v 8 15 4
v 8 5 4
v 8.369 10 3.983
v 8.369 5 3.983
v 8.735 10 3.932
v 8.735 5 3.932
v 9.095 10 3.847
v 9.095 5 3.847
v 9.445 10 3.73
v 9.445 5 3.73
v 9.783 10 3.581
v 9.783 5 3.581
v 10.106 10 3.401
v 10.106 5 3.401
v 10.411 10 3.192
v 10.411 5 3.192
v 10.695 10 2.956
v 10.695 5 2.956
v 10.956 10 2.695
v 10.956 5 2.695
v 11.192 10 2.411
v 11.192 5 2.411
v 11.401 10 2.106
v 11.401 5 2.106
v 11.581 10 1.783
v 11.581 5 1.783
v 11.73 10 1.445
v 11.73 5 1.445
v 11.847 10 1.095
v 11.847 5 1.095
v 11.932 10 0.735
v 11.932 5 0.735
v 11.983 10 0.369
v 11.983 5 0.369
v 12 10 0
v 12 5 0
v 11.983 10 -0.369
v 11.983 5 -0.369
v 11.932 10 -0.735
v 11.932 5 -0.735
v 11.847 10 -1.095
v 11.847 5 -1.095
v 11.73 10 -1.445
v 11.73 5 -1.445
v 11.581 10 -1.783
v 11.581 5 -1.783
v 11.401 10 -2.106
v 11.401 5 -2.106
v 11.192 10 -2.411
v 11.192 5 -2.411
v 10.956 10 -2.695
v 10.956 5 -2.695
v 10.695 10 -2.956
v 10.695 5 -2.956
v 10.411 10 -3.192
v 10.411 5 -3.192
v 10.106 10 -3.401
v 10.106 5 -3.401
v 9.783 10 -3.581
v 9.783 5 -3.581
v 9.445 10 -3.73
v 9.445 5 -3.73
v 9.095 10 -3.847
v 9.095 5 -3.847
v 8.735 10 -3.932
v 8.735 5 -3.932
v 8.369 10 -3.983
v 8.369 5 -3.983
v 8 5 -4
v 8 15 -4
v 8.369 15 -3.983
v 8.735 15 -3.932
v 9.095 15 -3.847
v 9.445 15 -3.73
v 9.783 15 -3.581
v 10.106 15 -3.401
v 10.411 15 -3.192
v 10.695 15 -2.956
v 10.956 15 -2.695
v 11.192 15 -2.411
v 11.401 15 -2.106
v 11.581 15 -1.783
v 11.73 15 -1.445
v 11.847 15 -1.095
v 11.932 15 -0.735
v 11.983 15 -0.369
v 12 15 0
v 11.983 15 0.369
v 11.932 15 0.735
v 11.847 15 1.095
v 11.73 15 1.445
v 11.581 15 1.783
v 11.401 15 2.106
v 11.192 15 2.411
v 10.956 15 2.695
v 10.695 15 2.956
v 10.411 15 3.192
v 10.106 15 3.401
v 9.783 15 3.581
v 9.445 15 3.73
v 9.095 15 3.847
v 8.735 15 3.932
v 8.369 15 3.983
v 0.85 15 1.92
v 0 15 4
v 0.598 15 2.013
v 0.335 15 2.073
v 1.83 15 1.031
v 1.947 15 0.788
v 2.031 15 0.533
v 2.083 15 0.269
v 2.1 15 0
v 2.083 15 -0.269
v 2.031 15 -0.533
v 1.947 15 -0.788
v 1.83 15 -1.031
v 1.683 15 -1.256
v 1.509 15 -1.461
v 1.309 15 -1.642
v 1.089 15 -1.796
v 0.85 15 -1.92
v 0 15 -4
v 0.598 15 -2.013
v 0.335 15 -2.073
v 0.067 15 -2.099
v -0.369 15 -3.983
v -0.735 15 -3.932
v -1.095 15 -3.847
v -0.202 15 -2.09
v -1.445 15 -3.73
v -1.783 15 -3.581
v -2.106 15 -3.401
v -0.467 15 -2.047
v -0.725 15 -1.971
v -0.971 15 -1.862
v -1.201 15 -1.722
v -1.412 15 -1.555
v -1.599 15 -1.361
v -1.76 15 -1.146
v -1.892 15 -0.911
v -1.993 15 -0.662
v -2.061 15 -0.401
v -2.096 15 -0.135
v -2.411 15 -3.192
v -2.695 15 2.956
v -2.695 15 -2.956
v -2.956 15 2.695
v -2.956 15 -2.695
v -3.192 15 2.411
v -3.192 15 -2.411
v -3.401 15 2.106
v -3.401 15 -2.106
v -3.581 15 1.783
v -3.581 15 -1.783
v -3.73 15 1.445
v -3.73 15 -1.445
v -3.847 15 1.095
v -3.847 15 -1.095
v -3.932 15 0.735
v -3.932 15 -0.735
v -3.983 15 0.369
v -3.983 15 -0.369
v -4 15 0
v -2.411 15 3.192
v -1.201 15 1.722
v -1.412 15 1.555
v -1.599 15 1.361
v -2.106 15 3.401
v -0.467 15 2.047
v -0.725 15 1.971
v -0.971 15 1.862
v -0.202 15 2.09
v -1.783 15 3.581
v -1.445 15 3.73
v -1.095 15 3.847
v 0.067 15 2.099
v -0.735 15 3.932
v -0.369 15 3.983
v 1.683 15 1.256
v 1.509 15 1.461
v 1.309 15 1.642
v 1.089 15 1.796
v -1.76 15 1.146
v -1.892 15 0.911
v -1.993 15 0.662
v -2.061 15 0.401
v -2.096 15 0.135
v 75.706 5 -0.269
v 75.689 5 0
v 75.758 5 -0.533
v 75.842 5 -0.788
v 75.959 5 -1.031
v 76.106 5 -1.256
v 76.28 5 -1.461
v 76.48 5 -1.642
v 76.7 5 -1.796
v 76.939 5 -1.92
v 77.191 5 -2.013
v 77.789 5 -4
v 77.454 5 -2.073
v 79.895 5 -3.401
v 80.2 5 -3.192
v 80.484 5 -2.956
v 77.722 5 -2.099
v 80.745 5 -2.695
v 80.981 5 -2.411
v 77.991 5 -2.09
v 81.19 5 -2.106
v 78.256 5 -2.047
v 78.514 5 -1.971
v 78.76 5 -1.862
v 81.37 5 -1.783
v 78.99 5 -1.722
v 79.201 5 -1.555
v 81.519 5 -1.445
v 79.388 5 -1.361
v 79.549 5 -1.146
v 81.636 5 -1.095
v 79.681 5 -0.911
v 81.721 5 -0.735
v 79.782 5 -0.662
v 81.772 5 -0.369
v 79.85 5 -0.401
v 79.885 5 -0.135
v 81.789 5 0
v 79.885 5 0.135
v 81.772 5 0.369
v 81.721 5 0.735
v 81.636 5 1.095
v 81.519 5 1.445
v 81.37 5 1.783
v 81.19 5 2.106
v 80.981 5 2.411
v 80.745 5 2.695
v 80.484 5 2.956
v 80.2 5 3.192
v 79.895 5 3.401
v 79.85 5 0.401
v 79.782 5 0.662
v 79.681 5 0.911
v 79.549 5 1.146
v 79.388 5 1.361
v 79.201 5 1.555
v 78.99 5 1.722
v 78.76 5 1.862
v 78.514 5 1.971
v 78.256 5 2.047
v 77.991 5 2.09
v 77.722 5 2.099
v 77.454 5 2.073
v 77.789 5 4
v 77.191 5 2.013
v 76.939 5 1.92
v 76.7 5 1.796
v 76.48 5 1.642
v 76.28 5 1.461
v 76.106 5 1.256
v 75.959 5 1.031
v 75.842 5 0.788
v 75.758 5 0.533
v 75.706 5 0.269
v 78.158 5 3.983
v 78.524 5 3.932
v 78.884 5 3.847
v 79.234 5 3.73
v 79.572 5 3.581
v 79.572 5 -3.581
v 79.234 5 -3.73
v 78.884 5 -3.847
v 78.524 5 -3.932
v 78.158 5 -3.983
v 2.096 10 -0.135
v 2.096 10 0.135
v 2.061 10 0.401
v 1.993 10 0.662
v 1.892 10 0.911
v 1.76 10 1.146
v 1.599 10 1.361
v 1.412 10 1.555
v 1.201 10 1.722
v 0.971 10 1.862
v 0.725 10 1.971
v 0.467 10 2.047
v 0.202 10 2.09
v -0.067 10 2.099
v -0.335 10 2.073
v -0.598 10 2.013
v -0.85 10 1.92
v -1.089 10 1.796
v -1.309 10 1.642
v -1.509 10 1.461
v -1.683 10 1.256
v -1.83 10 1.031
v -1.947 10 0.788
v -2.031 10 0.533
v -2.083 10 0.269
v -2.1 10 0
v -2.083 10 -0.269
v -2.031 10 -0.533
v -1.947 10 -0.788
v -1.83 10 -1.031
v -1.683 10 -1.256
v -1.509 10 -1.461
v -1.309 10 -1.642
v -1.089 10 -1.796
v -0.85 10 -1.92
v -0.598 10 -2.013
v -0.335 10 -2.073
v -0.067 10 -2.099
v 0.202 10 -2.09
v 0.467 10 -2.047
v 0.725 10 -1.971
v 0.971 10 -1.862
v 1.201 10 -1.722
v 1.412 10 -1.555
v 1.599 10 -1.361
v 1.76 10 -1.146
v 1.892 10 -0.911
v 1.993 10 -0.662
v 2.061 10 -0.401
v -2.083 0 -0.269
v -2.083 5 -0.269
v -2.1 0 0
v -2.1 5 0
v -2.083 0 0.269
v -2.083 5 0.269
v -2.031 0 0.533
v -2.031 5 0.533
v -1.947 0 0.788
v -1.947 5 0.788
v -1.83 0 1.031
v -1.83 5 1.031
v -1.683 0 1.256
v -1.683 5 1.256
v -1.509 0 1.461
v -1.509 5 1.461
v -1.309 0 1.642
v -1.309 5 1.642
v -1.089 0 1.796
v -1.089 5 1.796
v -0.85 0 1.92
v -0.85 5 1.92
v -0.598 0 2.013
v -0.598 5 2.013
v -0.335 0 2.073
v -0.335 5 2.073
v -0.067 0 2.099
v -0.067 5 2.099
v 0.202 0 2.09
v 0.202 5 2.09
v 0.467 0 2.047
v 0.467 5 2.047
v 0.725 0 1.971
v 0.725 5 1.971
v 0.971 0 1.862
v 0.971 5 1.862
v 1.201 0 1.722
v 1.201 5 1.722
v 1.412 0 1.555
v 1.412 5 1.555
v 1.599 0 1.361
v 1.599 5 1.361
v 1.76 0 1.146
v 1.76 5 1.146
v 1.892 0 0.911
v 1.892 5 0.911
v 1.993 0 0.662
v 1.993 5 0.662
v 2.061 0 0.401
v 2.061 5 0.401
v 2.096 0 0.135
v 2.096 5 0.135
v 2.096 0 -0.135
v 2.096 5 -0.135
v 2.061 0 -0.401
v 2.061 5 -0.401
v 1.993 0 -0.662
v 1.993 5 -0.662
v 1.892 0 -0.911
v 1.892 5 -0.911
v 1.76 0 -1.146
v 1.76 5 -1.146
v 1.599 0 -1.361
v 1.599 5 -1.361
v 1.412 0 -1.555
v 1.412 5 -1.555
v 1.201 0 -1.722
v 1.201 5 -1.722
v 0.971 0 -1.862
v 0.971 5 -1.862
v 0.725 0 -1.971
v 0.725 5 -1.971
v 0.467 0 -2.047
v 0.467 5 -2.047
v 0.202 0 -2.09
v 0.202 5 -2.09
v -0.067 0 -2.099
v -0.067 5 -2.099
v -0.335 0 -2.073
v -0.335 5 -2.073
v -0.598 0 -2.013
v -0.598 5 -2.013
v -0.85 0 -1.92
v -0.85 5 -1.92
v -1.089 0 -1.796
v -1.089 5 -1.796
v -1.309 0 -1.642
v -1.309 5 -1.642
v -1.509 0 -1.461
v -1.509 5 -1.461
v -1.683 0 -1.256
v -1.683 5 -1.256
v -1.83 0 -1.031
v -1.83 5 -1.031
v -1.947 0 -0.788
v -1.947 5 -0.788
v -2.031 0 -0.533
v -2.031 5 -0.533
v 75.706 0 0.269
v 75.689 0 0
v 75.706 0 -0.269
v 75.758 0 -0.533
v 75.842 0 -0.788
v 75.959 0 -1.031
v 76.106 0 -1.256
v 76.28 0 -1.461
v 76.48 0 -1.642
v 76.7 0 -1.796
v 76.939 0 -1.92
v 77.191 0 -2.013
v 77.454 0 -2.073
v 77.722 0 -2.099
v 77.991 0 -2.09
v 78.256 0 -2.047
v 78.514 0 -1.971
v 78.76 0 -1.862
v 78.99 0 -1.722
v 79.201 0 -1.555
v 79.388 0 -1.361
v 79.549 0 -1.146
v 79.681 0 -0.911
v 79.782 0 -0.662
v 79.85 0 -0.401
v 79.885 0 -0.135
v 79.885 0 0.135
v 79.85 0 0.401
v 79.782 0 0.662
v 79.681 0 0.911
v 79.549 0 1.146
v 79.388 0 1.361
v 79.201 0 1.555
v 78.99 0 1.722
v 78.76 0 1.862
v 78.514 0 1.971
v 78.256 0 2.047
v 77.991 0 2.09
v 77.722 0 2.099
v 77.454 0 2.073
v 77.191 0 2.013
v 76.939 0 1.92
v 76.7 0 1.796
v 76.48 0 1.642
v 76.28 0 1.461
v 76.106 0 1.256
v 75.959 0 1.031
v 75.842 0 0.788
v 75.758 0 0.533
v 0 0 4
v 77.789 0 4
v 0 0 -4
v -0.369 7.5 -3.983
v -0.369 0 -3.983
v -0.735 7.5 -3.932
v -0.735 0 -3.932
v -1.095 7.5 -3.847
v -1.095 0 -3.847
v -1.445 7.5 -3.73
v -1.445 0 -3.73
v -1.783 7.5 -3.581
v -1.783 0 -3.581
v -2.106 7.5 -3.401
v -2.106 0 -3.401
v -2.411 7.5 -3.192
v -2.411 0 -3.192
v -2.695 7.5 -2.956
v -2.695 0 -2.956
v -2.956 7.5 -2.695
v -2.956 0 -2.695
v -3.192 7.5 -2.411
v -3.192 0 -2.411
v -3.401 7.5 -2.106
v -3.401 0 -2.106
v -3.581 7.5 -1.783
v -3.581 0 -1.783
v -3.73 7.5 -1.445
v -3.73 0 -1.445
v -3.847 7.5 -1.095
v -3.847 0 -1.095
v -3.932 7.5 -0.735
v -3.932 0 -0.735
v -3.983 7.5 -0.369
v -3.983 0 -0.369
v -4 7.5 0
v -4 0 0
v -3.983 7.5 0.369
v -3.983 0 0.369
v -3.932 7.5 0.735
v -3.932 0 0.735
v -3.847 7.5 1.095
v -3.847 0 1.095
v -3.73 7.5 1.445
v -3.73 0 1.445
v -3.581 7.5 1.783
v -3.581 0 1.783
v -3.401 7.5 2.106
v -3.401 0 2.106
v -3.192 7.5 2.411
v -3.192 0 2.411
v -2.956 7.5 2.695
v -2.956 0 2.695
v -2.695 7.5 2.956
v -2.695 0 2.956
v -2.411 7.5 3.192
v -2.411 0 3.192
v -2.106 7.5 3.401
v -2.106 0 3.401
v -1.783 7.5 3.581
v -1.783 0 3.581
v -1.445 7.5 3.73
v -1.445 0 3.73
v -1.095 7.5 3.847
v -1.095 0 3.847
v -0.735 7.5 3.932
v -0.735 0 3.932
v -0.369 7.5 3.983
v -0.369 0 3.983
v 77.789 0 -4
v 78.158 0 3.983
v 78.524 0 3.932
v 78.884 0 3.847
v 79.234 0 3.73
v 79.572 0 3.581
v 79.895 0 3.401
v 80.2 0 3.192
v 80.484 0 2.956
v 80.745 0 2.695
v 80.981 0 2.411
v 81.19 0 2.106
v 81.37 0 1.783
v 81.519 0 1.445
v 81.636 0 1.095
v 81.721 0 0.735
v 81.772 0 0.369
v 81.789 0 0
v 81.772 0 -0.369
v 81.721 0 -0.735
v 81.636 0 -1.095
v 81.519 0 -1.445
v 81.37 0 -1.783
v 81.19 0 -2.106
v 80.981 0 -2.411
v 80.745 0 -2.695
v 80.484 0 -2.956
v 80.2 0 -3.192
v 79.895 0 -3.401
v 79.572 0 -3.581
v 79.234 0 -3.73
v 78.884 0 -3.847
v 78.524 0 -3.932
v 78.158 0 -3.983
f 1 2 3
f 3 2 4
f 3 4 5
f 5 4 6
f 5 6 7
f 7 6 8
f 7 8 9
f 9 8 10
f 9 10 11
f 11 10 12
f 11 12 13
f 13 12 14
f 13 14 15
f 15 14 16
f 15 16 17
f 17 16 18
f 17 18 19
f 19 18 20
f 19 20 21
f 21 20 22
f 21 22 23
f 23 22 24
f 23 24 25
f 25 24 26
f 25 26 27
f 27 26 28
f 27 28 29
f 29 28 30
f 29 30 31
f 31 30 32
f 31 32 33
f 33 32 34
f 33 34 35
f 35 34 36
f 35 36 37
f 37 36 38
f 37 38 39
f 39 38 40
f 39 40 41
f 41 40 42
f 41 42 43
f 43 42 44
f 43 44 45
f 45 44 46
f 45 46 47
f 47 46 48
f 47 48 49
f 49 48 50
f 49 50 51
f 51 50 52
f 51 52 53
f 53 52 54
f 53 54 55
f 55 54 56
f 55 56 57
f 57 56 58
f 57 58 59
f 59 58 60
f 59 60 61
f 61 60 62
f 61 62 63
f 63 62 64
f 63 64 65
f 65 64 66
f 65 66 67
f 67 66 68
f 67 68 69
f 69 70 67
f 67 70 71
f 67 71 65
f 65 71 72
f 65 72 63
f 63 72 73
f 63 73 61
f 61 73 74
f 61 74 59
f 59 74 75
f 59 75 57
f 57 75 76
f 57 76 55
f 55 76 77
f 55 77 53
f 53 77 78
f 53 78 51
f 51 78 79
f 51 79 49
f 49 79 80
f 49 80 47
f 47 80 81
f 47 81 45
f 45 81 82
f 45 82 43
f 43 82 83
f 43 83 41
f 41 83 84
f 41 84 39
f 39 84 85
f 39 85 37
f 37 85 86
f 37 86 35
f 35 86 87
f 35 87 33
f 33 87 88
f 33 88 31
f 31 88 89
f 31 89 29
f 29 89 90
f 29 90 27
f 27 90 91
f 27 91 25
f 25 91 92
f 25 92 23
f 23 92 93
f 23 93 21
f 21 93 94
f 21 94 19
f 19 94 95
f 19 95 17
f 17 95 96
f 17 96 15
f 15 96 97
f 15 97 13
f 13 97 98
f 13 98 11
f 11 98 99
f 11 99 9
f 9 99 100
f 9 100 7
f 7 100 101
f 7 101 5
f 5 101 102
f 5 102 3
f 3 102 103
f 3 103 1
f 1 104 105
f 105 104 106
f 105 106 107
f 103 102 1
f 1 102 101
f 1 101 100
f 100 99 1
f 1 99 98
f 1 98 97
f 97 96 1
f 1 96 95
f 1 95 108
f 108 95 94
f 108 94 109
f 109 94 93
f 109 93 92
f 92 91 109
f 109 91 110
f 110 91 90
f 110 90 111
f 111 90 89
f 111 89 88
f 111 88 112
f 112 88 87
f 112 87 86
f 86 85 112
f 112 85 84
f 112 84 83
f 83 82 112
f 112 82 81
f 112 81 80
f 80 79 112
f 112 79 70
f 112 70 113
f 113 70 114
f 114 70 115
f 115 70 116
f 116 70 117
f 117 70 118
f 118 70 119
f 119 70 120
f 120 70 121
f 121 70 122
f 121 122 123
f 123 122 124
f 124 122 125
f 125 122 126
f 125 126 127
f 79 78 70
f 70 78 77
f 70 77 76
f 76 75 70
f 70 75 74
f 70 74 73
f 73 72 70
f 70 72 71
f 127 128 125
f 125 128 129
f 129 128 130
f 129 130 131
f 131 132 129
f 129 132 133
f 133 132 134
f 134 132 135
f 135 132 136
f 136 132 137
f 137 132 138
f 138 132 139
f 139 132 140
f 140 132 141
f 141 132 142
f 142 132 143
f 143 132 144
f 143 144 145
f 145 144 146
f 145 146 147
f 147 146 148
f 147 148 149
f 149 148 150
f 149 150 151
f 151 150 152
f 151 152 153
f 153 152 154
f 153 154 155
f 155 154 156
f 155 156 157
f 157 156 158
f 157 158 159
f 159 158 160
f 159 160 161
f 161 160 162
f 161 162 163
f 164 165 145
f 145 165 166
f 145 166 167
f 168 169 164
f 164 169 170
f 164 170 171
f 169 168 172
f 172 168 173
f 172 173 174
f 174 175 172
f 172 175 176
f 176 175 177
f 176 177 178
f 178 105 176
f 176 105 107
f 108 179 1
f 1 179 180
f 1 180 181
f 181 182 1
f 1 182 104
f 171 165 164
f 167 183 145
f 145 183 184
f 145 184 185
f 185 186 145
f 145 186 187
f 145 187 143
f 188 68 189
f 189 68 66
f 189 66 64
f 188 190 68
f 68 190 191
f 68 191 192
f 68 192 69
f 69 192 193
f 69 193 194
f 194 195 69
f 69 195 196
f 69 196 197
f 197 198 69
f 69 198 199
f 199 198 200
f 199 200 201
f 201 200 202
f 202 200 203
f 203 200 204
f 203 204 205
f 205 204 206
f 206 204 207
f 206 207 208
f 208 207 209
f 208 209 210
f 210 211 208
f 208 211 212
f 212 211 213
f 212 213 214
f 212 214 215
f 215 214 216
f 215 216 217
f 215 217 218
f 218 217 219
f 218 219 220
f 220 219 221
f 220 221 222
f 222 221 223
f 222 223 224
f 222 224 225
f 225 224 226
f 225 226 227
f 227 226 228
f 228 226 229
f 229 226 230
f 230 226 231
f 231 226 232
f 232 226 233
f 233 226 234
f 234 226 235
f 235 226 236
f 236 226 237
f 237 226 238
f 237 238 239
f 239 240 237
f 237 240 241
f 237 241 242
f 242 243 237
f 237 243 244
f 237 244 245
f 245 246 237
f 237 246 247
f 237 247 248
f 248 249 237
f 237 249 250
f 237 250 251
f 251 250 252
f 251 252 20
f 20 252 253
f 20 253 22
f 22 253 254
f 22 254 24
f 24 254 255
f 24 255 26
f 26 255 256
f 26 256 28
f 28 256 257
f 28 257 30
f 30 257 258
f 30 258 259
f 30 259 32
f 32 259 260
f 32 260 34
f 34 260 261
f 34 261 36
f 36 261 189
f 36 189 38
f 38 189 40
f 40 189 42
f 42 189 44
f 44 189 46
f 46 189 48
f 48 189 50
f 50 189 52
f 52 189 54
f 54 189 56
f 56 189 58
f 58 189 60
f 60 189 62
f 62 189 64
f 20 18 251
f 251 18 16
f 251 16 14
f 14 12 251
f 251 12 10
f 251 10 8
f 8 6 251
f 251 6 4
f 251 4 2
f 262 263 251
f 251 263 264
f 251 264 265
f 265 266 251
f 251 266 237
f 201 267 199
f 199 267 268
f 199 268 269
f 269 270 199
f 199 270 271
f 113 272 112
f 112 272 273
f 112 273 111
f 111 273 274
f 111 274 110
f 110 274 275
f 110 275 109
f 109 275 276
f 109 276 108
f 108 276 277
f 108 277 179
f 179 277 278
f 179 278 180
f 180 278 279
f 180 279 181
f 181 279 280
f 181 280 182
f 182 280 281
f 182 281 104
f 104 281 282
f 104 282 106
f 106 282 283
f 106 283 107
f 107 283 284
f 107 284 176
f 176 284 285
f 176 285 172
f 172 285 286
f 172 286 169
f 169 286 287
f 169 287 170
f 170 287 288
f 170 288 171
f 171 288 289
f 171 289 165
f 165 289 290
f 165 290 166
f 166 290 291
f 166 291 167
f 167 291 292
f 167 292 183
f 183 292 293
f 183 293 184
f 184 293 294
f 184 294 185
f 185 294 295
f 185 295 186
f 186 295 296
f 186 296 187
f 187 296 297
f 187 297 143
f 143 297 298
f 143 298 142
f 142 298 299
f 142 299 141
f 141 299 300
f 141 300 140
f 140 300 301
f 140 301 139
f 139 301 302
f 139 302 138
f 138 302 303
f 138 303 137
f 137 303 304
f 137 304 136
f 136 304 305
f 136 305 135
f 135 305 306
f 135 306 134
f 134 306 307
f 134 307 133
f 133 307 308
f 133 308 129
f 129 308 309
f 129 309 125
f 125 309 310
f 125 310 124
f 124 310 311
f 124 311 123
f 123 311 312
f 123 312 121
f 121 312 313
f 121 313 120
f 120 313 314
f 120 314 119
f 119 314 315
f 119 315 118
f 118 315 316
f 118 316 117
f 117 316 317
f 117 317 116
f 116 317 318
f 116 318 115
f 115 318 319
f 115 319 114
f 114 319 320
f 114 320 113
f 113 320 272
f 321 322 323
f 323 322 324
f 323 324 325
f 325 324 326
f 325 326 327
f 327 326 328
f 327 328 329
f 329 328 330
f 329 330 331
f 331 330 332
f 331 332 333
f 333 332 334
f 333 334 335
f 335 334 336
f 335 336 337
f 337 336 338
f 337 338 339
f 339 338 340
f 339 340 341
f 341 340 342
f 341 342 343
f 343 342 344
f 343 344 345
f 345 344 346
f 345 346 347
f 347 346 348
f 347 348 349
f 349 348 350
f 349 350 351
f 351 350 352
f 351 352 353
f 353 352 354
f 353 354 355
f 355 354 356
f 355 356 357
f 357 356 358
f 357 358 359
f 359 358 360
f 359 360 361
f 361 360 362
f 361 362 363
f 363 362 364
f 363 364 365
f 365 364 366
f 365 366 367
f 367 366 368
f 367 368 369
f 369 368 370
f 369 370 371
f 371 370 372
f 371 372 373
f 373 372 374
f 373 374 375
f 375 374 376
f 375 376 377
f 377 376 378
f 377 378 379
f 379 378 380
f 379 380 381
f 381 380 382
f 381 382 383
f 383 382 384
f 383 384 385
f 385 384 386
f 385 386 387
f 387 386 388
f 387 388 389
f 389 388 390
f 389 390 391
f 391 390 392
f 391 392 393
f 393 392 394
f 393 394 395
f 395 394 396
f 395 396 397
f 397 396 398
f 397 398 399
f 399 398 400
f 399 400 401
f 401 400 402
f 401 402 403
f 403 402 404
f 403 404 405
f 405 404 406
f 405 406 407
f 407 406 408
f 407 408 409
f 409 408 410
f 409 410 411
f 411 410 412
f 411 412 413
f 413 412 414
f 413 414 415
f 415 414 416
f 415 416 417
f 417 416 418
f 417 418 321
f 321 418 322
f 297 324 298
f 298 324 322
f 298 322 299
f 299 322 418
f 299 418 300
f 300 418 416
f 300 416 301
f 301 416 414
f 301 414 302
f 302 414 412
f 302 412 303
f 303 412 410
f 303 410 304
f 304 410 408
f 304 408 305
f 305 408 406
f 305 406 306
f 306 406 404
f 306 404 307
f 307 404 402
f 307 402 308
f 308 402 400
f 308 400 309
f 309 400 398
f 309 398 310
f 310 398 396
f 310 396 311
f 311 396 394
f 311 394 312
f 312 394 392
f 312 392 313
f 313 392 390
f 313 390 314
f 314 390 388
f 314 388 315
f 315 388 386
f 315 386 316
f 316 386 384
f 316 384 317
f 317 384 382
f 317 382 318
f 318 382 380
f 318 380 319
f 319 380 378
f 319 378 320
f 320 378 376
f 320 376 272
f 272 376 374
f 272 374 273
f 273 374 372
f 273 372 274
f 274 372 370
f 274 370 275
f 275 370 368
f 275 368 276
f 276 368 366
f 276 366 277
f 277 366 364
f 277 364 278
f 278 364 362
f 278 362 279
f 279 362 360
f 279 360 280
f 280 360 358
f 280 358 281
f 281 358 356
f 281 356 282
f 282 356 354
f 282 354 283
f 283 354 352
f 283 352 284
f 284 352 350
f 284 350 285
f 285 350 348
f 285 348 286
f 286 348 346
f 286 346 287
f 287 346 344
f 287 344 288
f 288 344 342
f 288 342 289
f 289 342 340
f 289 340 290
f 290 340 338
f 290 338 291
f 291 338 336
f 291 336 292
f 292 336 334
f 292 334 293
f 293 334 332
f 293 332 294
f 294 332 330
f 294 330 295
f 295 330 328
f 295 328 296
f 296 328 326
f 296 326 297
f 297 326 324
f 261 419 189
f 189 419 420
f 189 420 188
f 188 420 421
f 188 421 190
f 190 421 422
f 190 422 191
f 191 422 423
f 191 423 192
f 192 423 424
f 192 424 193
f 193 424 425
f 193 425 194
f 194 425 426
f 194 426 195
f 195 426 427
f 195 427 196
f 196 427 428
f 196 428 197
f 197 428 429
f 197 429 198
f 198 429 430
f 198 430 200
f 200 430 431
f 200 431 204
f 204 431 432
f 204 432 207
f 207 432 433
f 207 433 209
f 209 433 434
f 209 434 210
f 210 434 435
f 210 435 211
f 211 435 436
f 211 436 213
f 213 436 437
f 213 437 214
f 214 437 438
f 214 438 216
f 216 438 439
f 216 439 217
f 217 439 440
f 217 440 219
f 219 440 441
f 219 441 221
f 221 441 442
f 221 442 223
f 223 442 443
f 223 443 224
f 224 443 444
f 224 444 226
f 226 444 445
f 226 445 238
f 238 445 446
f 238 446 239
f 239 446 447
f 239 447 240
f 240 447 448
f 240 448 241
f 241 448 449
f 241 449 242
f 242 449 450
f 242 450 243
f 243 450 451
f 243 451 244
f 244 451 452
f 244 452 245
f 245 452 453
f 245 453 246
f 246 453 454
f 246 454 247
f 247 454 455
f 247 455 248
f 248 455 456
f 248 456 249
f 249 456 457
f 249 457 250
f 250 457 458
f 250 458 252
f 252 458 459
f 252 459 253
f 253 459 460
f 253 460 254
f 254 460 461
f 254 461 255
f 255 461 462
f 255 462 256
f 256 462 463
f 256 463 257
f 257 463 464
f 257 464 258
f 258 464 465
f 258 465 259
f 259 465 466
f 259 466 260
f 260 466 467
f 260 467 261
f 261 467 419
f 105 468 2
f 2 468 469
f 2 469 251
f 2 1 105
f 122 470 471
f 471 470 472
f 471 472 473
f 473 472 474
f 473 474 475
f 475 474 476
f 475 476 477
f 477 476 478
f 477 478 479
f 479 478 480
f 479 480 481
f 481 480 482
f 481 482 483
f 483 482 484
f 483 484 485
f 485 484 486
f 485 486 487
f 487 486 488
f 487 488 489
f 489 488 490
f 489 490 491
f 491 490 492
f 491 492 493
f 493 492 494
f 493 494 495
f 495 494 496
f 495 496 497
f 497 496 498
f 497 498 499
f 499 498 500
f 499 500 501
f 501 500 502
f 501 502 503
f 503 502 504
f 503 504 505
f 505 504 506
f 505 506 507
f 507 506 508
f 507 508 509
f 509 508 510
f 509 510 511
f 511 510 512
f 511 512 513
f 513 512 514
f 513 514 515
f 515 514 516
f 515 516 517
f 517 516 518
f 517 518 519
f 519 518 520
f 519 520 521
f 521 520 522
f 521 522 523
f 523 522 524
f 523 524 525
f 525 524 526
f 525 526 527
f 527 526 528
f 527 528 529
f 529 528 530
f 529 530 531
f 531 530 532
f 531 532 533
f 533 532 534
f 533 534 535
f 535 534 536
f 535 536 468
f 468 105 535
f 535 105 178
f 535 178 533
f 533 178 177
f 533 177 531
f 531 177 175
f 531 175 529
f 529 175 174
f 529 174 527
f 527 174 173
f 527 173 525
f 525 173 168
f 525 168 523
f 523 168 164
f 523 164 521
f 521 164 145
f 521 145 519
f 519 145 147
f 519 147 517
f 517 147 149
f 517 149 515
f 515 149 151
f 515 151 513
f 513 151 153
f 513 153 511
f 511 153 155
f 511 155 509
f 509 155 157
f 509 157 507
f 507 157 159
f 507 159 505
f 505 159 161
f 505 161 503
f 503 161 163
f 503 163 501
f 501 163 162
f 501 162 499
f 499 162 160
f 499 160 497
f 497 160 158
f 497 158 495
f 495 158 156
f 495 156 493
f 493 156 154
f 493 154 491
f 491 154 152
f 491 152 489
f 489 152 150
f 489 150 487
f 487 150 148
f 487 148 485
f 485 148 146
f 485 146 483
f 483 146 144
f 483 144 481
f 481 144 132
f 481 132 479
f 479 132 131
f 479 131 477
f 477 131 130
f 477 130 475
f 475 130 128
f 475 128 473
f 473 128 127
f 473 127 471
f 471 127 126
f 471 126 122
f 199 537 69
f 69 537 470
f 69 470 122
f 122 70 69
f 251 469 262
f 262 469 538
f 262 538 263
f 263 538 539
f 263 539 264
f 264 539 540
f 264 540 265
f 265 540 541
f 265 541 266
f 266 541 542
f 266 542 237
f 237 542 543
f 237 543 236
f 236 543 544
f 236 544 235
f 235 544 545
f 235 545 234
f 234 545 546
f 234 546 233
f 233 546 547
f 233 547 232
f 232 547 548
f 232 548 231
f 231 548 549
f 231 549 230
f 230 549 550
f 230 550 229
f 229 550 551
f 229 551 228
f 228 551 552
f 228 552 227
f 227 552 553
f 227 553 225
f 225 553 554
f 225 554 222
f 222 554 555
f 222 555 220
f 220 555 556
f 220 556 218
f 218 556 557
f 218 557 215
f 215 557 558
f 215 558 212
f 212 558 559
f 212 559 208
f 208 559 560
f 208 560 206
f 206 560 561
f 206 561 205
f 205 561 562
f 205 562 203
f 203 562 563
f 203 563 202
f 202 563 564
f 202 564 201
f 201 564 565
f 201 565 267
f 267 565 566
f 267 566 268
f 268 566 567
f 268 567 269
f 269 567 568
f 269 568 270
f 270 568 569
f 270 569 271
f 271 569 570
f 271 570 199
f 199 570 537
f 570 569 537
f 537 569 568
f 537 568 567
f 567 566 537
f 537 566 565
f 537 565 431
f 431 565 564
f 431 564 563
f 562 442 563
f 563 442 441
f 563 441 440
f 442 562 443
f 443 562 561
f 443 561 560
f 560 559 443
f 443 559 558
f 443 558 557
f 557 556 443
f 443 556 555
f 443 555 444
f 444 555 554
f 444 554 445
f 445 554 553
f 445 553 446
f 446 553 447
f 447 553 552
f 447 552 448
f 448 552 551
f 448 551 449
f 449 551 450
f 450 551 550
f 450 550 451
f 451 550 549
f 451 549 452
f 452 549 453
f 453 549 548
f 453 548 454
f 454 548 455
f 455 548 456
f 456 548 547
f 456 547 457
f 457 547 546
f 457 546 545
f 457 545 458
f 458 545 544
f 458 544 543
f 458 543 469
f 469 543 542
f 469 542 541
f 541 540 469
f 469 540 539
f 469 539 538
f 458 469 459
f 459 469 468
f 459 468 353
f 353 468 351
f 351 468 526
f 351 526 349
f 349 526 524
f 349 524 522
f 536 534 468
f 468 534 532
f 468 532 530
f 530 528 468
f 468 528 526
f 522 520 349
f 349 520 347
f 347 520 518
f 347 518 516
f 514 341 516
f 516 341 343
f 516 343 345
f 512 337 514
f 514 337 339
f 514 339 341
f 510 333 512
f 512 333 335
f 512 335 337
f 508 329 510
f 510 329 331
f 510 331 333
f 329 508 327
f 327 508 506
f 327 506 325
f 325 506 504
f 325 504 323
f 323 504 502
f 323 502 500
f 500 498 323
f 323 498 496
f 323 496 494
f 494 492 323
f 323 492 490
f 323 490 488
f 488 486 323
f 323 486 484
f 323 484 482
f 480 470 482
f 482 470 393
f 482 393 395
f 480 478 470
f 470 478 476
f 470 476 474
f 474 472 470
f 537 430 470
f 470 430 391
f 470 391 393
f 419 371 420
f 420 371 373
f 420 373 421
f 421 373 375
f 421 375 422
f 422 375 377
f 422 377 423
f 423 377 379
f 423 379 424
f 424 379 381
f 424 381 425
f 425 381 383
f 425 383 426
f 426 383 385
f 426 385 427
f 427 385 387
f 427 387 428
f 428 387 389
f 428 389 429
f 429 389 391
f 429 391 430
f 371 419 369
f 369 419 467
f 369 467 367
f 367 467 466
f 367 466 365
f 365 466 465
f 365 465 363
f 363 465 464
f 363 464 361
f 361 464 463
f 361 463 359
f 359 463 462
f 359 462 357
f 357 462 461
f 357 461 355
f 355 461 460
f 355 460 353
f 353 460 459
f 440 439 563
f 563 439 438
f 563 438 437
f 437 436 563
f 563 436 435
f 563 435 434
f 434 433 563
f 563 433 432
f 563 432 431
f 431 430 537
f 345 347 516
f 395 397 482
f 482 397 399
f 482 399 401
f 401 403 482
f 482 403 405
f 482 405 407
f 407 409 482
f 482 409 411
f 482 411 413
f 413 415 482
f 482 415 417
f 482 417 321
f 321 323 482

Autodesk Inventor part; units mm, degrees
ref_plane "YZ Plane" through (0, 0, 0) normal (1, 0, 0) x (0, 1, 0)
ref_plane "XZ Plane" through (0, 0, 0) normal (0, 1, 0) x (-1, 0, 0)
ref_plane "XY Plane" through (0, 0, 0) normal (0, 0, 1) x (1, 0, 0)
sketch "Sketch1" plane through (0, 0, 0) normal (0, 1, 0) x (-1, 0, 0)
  line L0 (0, 0) -> (-77.789, 0) construction
  line L1 (0, 4) -> (-77.789, 4)
  line L2 (-77.789, -4) -> (0, -4)
  arc A0 (0, -4) -> (0, 4) centre (0, 0) ccw
  arc A1 (-77.789, 4) -> (-77.789, -4) centre (-77.789, 0) ccw
  circle A2 centre (0, 0) radius 2.1
  circle A3 centre (-77.789, 0) radius 2.1
  point P0 (-38.8945, 0)
  dimension "d0" = 77.789
  dimension "d1" = 8
  dimension "d2" = 4.2
  dimension "d10" = 4.2
extrude "Extrusion1" add sketch "Sketch1" along normal blind 5
sketch "Sketch2" plane through (0, 5, 0) normal (0, 1, 0) x (1, 0, 0)
  arc A0 (77.789, -4) -> (77.789, 4) centre (77.789, 0) ccw projected
  line L0 (77.789, 4) -> (0, 4) projected
  arc A1 (0, 4) -> (0, -4) centre (0, 0) ccw projected
  line L1 (0, -4) -> (77.789, -4) projected
  circle A2 centre (77.789, 0) radius 2.1 projected
  circle A3 centre (0, 0) radius 2.1 projected
  circle A4 centre (8, 0) radius 4
  line L2 (0, -4) -> (77.789, -4) projected
  circle A5 centre (69.789, 0) radius 4
  point P0 (69.789, -4)
  point P1 (69.789, 4)
  point P2 (8, -4)
  point P3 (8, 4)
  dimension "d11" = 8
  dimension "d12" = 8
  dimension "d13" = 8
extrude "Extrusion2" add sketch "Sketch2" along normal blind 10 contours L1 A1 L0 A4 | A4
